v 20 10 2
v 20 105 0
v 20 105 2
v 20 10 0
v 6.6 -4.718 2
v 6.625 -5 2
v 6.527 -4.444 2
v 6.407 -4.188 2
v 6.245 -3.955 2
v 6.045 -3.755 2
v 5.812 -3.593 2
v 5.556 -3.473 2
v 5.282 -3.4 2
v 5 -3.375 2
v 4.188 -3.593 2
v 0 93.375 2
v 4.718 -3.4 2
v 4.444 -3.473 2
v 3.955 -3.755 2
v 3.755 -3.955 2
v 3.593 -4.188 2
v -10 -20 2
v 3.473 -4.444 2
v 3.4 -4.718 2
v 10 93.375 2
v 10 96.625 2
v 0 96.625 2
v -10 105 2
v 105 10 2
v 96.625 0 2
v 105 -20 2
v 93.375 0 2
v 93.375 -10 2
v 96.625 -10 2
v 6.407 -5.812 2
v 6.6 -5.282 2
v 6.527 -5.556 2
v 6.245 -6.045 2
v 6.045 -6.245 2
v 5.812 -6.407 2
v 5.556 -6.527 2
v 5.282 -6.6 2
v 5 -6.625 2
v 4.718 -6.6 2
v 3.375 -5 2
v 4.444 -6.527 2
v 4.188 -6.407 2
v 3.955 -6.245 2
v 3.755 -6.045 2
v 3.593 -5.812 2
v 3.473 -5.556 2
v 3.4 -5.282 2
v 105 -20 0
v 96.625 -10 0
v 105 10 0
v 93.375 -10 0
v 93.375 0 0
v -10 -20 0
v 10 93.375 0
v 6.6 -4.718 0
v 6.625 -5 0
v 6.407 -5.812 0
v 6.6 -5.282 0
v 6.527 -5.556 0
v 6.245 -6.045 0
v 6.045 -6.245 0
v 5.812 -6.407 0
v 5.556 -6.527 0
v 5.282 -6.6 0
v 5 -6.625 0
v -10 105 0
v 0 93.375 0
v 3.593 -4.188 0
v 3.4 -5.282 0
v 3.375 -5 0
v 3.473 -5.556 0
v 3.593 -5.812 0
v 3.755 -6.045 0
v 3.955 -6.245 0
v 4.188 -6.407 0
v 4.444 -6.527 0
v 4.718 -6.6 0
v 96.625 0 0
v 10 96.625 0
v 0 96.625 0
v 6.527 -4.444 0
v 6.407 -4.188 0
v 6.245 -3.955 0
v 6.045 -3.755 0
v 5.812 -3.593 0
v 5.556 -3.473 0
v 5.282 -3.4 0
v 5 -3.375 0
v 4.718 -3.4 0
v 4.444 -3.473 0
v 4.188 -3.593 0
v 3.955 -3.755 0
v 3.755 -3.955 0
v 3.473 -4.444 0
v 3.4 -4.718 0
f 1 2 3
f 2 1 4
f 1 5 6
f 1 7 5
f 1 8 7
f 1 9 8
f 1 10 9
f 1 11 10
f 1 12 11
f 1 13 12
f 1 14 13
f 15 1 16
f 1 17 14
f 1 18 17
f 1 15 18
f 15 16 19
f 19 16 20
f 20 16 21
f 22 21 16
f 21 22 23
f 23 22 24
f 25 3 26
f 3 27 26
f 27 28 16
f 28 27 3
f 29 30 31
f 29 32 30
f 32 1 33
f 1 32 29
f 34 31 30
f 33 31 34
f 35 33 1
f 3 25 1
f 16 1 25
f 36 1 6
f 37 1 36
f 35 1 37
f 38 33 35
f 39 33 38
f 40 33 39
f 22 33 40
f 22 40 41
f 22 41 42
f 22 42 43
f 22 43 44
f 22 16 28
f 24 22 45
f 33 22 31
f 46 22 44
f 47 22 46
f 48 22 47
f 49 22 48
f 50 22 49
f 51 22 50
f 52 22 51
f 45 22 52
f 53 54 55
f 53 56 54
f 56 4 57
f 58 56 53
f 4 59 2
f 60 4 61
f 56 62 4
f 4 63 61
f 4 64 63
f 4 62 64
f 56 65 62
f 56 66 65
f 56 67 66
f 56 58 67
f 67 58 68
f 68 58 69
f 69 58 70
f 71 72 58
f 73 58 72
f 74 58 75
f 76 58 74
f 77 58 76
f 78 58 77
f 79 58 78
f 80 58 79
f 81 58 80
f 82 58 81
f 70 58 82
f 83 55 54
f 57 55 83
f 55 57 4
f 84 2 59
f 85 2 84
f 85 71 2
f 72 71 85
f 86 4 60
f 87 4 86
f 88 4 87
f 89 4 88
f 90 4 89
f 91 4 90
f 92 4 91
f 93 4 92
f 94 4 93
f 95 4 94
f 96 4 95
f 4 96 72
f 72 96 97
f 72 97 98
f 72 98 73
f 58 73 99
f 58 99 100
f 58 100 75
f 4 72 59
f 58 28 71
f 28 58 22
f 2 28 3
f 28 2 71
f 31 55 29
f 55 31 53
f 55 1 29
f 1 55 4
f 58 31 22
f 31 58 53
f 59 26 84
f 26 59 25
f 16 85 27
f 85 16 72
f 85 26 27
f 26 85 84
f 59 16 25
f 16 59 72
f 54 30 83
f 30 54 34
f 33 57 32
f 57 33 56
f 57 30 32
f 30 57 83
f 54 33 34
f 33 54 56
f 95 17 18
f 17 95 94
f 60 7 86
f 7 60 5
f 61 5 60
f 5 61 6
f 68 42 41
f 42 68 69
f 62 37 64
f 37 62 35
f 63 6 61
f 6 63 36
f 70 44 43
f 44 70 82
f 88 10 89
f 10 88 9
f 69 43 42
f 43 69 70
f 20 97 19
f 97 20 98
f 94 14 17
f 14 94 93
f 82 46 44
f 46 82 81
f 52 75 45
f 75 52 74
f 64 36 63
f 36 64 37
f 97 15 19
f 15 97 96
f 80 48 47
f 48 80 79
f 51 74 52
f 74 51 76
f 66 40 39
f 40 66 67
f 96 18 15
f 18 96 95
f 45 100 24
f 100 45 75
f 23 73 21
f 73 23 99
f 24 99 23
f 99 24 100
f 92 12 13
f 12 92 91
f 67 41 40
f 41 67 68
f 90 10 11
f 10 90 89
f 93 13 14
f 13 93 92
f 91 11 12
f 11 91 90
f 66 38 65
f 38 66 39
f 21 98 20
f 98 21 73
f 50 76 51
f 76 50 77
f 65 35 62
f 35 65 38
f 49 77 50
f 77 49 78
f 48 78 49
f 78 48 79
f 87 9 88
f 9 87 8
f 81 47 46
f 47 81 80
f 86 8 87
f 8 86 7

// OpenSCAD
/*
 * Machdyne PNP
 * Copyright (c) 2023 Lone Dynamics Corporation. All rights reserved.
 *
 * PCB Holder
 *
 */
 
$fn = 36;

pcbh();

module pcbh() {
	
	difference() {
		
		union() {
			translate([-10,0,0]) cube([30,105,2]);
			translate([-10,-20,0]) cube([115,30,2]);
		}
	
		translate([5,95,0]) cube([10,3.25,10], center=true);
		//translate([5,95,0]) cylinder(d=3.25, h=10, center=true);
		
		translate([95,-5,0]) cube([3.25,10,10], center=true);
		//translate([95,-5,0]) cylinder(d=3.25, h=10, center=true);
	
		translate([5,-5,0]) cylinder(d=3.25, h=10, center=true);
			
			
	}
	
}
